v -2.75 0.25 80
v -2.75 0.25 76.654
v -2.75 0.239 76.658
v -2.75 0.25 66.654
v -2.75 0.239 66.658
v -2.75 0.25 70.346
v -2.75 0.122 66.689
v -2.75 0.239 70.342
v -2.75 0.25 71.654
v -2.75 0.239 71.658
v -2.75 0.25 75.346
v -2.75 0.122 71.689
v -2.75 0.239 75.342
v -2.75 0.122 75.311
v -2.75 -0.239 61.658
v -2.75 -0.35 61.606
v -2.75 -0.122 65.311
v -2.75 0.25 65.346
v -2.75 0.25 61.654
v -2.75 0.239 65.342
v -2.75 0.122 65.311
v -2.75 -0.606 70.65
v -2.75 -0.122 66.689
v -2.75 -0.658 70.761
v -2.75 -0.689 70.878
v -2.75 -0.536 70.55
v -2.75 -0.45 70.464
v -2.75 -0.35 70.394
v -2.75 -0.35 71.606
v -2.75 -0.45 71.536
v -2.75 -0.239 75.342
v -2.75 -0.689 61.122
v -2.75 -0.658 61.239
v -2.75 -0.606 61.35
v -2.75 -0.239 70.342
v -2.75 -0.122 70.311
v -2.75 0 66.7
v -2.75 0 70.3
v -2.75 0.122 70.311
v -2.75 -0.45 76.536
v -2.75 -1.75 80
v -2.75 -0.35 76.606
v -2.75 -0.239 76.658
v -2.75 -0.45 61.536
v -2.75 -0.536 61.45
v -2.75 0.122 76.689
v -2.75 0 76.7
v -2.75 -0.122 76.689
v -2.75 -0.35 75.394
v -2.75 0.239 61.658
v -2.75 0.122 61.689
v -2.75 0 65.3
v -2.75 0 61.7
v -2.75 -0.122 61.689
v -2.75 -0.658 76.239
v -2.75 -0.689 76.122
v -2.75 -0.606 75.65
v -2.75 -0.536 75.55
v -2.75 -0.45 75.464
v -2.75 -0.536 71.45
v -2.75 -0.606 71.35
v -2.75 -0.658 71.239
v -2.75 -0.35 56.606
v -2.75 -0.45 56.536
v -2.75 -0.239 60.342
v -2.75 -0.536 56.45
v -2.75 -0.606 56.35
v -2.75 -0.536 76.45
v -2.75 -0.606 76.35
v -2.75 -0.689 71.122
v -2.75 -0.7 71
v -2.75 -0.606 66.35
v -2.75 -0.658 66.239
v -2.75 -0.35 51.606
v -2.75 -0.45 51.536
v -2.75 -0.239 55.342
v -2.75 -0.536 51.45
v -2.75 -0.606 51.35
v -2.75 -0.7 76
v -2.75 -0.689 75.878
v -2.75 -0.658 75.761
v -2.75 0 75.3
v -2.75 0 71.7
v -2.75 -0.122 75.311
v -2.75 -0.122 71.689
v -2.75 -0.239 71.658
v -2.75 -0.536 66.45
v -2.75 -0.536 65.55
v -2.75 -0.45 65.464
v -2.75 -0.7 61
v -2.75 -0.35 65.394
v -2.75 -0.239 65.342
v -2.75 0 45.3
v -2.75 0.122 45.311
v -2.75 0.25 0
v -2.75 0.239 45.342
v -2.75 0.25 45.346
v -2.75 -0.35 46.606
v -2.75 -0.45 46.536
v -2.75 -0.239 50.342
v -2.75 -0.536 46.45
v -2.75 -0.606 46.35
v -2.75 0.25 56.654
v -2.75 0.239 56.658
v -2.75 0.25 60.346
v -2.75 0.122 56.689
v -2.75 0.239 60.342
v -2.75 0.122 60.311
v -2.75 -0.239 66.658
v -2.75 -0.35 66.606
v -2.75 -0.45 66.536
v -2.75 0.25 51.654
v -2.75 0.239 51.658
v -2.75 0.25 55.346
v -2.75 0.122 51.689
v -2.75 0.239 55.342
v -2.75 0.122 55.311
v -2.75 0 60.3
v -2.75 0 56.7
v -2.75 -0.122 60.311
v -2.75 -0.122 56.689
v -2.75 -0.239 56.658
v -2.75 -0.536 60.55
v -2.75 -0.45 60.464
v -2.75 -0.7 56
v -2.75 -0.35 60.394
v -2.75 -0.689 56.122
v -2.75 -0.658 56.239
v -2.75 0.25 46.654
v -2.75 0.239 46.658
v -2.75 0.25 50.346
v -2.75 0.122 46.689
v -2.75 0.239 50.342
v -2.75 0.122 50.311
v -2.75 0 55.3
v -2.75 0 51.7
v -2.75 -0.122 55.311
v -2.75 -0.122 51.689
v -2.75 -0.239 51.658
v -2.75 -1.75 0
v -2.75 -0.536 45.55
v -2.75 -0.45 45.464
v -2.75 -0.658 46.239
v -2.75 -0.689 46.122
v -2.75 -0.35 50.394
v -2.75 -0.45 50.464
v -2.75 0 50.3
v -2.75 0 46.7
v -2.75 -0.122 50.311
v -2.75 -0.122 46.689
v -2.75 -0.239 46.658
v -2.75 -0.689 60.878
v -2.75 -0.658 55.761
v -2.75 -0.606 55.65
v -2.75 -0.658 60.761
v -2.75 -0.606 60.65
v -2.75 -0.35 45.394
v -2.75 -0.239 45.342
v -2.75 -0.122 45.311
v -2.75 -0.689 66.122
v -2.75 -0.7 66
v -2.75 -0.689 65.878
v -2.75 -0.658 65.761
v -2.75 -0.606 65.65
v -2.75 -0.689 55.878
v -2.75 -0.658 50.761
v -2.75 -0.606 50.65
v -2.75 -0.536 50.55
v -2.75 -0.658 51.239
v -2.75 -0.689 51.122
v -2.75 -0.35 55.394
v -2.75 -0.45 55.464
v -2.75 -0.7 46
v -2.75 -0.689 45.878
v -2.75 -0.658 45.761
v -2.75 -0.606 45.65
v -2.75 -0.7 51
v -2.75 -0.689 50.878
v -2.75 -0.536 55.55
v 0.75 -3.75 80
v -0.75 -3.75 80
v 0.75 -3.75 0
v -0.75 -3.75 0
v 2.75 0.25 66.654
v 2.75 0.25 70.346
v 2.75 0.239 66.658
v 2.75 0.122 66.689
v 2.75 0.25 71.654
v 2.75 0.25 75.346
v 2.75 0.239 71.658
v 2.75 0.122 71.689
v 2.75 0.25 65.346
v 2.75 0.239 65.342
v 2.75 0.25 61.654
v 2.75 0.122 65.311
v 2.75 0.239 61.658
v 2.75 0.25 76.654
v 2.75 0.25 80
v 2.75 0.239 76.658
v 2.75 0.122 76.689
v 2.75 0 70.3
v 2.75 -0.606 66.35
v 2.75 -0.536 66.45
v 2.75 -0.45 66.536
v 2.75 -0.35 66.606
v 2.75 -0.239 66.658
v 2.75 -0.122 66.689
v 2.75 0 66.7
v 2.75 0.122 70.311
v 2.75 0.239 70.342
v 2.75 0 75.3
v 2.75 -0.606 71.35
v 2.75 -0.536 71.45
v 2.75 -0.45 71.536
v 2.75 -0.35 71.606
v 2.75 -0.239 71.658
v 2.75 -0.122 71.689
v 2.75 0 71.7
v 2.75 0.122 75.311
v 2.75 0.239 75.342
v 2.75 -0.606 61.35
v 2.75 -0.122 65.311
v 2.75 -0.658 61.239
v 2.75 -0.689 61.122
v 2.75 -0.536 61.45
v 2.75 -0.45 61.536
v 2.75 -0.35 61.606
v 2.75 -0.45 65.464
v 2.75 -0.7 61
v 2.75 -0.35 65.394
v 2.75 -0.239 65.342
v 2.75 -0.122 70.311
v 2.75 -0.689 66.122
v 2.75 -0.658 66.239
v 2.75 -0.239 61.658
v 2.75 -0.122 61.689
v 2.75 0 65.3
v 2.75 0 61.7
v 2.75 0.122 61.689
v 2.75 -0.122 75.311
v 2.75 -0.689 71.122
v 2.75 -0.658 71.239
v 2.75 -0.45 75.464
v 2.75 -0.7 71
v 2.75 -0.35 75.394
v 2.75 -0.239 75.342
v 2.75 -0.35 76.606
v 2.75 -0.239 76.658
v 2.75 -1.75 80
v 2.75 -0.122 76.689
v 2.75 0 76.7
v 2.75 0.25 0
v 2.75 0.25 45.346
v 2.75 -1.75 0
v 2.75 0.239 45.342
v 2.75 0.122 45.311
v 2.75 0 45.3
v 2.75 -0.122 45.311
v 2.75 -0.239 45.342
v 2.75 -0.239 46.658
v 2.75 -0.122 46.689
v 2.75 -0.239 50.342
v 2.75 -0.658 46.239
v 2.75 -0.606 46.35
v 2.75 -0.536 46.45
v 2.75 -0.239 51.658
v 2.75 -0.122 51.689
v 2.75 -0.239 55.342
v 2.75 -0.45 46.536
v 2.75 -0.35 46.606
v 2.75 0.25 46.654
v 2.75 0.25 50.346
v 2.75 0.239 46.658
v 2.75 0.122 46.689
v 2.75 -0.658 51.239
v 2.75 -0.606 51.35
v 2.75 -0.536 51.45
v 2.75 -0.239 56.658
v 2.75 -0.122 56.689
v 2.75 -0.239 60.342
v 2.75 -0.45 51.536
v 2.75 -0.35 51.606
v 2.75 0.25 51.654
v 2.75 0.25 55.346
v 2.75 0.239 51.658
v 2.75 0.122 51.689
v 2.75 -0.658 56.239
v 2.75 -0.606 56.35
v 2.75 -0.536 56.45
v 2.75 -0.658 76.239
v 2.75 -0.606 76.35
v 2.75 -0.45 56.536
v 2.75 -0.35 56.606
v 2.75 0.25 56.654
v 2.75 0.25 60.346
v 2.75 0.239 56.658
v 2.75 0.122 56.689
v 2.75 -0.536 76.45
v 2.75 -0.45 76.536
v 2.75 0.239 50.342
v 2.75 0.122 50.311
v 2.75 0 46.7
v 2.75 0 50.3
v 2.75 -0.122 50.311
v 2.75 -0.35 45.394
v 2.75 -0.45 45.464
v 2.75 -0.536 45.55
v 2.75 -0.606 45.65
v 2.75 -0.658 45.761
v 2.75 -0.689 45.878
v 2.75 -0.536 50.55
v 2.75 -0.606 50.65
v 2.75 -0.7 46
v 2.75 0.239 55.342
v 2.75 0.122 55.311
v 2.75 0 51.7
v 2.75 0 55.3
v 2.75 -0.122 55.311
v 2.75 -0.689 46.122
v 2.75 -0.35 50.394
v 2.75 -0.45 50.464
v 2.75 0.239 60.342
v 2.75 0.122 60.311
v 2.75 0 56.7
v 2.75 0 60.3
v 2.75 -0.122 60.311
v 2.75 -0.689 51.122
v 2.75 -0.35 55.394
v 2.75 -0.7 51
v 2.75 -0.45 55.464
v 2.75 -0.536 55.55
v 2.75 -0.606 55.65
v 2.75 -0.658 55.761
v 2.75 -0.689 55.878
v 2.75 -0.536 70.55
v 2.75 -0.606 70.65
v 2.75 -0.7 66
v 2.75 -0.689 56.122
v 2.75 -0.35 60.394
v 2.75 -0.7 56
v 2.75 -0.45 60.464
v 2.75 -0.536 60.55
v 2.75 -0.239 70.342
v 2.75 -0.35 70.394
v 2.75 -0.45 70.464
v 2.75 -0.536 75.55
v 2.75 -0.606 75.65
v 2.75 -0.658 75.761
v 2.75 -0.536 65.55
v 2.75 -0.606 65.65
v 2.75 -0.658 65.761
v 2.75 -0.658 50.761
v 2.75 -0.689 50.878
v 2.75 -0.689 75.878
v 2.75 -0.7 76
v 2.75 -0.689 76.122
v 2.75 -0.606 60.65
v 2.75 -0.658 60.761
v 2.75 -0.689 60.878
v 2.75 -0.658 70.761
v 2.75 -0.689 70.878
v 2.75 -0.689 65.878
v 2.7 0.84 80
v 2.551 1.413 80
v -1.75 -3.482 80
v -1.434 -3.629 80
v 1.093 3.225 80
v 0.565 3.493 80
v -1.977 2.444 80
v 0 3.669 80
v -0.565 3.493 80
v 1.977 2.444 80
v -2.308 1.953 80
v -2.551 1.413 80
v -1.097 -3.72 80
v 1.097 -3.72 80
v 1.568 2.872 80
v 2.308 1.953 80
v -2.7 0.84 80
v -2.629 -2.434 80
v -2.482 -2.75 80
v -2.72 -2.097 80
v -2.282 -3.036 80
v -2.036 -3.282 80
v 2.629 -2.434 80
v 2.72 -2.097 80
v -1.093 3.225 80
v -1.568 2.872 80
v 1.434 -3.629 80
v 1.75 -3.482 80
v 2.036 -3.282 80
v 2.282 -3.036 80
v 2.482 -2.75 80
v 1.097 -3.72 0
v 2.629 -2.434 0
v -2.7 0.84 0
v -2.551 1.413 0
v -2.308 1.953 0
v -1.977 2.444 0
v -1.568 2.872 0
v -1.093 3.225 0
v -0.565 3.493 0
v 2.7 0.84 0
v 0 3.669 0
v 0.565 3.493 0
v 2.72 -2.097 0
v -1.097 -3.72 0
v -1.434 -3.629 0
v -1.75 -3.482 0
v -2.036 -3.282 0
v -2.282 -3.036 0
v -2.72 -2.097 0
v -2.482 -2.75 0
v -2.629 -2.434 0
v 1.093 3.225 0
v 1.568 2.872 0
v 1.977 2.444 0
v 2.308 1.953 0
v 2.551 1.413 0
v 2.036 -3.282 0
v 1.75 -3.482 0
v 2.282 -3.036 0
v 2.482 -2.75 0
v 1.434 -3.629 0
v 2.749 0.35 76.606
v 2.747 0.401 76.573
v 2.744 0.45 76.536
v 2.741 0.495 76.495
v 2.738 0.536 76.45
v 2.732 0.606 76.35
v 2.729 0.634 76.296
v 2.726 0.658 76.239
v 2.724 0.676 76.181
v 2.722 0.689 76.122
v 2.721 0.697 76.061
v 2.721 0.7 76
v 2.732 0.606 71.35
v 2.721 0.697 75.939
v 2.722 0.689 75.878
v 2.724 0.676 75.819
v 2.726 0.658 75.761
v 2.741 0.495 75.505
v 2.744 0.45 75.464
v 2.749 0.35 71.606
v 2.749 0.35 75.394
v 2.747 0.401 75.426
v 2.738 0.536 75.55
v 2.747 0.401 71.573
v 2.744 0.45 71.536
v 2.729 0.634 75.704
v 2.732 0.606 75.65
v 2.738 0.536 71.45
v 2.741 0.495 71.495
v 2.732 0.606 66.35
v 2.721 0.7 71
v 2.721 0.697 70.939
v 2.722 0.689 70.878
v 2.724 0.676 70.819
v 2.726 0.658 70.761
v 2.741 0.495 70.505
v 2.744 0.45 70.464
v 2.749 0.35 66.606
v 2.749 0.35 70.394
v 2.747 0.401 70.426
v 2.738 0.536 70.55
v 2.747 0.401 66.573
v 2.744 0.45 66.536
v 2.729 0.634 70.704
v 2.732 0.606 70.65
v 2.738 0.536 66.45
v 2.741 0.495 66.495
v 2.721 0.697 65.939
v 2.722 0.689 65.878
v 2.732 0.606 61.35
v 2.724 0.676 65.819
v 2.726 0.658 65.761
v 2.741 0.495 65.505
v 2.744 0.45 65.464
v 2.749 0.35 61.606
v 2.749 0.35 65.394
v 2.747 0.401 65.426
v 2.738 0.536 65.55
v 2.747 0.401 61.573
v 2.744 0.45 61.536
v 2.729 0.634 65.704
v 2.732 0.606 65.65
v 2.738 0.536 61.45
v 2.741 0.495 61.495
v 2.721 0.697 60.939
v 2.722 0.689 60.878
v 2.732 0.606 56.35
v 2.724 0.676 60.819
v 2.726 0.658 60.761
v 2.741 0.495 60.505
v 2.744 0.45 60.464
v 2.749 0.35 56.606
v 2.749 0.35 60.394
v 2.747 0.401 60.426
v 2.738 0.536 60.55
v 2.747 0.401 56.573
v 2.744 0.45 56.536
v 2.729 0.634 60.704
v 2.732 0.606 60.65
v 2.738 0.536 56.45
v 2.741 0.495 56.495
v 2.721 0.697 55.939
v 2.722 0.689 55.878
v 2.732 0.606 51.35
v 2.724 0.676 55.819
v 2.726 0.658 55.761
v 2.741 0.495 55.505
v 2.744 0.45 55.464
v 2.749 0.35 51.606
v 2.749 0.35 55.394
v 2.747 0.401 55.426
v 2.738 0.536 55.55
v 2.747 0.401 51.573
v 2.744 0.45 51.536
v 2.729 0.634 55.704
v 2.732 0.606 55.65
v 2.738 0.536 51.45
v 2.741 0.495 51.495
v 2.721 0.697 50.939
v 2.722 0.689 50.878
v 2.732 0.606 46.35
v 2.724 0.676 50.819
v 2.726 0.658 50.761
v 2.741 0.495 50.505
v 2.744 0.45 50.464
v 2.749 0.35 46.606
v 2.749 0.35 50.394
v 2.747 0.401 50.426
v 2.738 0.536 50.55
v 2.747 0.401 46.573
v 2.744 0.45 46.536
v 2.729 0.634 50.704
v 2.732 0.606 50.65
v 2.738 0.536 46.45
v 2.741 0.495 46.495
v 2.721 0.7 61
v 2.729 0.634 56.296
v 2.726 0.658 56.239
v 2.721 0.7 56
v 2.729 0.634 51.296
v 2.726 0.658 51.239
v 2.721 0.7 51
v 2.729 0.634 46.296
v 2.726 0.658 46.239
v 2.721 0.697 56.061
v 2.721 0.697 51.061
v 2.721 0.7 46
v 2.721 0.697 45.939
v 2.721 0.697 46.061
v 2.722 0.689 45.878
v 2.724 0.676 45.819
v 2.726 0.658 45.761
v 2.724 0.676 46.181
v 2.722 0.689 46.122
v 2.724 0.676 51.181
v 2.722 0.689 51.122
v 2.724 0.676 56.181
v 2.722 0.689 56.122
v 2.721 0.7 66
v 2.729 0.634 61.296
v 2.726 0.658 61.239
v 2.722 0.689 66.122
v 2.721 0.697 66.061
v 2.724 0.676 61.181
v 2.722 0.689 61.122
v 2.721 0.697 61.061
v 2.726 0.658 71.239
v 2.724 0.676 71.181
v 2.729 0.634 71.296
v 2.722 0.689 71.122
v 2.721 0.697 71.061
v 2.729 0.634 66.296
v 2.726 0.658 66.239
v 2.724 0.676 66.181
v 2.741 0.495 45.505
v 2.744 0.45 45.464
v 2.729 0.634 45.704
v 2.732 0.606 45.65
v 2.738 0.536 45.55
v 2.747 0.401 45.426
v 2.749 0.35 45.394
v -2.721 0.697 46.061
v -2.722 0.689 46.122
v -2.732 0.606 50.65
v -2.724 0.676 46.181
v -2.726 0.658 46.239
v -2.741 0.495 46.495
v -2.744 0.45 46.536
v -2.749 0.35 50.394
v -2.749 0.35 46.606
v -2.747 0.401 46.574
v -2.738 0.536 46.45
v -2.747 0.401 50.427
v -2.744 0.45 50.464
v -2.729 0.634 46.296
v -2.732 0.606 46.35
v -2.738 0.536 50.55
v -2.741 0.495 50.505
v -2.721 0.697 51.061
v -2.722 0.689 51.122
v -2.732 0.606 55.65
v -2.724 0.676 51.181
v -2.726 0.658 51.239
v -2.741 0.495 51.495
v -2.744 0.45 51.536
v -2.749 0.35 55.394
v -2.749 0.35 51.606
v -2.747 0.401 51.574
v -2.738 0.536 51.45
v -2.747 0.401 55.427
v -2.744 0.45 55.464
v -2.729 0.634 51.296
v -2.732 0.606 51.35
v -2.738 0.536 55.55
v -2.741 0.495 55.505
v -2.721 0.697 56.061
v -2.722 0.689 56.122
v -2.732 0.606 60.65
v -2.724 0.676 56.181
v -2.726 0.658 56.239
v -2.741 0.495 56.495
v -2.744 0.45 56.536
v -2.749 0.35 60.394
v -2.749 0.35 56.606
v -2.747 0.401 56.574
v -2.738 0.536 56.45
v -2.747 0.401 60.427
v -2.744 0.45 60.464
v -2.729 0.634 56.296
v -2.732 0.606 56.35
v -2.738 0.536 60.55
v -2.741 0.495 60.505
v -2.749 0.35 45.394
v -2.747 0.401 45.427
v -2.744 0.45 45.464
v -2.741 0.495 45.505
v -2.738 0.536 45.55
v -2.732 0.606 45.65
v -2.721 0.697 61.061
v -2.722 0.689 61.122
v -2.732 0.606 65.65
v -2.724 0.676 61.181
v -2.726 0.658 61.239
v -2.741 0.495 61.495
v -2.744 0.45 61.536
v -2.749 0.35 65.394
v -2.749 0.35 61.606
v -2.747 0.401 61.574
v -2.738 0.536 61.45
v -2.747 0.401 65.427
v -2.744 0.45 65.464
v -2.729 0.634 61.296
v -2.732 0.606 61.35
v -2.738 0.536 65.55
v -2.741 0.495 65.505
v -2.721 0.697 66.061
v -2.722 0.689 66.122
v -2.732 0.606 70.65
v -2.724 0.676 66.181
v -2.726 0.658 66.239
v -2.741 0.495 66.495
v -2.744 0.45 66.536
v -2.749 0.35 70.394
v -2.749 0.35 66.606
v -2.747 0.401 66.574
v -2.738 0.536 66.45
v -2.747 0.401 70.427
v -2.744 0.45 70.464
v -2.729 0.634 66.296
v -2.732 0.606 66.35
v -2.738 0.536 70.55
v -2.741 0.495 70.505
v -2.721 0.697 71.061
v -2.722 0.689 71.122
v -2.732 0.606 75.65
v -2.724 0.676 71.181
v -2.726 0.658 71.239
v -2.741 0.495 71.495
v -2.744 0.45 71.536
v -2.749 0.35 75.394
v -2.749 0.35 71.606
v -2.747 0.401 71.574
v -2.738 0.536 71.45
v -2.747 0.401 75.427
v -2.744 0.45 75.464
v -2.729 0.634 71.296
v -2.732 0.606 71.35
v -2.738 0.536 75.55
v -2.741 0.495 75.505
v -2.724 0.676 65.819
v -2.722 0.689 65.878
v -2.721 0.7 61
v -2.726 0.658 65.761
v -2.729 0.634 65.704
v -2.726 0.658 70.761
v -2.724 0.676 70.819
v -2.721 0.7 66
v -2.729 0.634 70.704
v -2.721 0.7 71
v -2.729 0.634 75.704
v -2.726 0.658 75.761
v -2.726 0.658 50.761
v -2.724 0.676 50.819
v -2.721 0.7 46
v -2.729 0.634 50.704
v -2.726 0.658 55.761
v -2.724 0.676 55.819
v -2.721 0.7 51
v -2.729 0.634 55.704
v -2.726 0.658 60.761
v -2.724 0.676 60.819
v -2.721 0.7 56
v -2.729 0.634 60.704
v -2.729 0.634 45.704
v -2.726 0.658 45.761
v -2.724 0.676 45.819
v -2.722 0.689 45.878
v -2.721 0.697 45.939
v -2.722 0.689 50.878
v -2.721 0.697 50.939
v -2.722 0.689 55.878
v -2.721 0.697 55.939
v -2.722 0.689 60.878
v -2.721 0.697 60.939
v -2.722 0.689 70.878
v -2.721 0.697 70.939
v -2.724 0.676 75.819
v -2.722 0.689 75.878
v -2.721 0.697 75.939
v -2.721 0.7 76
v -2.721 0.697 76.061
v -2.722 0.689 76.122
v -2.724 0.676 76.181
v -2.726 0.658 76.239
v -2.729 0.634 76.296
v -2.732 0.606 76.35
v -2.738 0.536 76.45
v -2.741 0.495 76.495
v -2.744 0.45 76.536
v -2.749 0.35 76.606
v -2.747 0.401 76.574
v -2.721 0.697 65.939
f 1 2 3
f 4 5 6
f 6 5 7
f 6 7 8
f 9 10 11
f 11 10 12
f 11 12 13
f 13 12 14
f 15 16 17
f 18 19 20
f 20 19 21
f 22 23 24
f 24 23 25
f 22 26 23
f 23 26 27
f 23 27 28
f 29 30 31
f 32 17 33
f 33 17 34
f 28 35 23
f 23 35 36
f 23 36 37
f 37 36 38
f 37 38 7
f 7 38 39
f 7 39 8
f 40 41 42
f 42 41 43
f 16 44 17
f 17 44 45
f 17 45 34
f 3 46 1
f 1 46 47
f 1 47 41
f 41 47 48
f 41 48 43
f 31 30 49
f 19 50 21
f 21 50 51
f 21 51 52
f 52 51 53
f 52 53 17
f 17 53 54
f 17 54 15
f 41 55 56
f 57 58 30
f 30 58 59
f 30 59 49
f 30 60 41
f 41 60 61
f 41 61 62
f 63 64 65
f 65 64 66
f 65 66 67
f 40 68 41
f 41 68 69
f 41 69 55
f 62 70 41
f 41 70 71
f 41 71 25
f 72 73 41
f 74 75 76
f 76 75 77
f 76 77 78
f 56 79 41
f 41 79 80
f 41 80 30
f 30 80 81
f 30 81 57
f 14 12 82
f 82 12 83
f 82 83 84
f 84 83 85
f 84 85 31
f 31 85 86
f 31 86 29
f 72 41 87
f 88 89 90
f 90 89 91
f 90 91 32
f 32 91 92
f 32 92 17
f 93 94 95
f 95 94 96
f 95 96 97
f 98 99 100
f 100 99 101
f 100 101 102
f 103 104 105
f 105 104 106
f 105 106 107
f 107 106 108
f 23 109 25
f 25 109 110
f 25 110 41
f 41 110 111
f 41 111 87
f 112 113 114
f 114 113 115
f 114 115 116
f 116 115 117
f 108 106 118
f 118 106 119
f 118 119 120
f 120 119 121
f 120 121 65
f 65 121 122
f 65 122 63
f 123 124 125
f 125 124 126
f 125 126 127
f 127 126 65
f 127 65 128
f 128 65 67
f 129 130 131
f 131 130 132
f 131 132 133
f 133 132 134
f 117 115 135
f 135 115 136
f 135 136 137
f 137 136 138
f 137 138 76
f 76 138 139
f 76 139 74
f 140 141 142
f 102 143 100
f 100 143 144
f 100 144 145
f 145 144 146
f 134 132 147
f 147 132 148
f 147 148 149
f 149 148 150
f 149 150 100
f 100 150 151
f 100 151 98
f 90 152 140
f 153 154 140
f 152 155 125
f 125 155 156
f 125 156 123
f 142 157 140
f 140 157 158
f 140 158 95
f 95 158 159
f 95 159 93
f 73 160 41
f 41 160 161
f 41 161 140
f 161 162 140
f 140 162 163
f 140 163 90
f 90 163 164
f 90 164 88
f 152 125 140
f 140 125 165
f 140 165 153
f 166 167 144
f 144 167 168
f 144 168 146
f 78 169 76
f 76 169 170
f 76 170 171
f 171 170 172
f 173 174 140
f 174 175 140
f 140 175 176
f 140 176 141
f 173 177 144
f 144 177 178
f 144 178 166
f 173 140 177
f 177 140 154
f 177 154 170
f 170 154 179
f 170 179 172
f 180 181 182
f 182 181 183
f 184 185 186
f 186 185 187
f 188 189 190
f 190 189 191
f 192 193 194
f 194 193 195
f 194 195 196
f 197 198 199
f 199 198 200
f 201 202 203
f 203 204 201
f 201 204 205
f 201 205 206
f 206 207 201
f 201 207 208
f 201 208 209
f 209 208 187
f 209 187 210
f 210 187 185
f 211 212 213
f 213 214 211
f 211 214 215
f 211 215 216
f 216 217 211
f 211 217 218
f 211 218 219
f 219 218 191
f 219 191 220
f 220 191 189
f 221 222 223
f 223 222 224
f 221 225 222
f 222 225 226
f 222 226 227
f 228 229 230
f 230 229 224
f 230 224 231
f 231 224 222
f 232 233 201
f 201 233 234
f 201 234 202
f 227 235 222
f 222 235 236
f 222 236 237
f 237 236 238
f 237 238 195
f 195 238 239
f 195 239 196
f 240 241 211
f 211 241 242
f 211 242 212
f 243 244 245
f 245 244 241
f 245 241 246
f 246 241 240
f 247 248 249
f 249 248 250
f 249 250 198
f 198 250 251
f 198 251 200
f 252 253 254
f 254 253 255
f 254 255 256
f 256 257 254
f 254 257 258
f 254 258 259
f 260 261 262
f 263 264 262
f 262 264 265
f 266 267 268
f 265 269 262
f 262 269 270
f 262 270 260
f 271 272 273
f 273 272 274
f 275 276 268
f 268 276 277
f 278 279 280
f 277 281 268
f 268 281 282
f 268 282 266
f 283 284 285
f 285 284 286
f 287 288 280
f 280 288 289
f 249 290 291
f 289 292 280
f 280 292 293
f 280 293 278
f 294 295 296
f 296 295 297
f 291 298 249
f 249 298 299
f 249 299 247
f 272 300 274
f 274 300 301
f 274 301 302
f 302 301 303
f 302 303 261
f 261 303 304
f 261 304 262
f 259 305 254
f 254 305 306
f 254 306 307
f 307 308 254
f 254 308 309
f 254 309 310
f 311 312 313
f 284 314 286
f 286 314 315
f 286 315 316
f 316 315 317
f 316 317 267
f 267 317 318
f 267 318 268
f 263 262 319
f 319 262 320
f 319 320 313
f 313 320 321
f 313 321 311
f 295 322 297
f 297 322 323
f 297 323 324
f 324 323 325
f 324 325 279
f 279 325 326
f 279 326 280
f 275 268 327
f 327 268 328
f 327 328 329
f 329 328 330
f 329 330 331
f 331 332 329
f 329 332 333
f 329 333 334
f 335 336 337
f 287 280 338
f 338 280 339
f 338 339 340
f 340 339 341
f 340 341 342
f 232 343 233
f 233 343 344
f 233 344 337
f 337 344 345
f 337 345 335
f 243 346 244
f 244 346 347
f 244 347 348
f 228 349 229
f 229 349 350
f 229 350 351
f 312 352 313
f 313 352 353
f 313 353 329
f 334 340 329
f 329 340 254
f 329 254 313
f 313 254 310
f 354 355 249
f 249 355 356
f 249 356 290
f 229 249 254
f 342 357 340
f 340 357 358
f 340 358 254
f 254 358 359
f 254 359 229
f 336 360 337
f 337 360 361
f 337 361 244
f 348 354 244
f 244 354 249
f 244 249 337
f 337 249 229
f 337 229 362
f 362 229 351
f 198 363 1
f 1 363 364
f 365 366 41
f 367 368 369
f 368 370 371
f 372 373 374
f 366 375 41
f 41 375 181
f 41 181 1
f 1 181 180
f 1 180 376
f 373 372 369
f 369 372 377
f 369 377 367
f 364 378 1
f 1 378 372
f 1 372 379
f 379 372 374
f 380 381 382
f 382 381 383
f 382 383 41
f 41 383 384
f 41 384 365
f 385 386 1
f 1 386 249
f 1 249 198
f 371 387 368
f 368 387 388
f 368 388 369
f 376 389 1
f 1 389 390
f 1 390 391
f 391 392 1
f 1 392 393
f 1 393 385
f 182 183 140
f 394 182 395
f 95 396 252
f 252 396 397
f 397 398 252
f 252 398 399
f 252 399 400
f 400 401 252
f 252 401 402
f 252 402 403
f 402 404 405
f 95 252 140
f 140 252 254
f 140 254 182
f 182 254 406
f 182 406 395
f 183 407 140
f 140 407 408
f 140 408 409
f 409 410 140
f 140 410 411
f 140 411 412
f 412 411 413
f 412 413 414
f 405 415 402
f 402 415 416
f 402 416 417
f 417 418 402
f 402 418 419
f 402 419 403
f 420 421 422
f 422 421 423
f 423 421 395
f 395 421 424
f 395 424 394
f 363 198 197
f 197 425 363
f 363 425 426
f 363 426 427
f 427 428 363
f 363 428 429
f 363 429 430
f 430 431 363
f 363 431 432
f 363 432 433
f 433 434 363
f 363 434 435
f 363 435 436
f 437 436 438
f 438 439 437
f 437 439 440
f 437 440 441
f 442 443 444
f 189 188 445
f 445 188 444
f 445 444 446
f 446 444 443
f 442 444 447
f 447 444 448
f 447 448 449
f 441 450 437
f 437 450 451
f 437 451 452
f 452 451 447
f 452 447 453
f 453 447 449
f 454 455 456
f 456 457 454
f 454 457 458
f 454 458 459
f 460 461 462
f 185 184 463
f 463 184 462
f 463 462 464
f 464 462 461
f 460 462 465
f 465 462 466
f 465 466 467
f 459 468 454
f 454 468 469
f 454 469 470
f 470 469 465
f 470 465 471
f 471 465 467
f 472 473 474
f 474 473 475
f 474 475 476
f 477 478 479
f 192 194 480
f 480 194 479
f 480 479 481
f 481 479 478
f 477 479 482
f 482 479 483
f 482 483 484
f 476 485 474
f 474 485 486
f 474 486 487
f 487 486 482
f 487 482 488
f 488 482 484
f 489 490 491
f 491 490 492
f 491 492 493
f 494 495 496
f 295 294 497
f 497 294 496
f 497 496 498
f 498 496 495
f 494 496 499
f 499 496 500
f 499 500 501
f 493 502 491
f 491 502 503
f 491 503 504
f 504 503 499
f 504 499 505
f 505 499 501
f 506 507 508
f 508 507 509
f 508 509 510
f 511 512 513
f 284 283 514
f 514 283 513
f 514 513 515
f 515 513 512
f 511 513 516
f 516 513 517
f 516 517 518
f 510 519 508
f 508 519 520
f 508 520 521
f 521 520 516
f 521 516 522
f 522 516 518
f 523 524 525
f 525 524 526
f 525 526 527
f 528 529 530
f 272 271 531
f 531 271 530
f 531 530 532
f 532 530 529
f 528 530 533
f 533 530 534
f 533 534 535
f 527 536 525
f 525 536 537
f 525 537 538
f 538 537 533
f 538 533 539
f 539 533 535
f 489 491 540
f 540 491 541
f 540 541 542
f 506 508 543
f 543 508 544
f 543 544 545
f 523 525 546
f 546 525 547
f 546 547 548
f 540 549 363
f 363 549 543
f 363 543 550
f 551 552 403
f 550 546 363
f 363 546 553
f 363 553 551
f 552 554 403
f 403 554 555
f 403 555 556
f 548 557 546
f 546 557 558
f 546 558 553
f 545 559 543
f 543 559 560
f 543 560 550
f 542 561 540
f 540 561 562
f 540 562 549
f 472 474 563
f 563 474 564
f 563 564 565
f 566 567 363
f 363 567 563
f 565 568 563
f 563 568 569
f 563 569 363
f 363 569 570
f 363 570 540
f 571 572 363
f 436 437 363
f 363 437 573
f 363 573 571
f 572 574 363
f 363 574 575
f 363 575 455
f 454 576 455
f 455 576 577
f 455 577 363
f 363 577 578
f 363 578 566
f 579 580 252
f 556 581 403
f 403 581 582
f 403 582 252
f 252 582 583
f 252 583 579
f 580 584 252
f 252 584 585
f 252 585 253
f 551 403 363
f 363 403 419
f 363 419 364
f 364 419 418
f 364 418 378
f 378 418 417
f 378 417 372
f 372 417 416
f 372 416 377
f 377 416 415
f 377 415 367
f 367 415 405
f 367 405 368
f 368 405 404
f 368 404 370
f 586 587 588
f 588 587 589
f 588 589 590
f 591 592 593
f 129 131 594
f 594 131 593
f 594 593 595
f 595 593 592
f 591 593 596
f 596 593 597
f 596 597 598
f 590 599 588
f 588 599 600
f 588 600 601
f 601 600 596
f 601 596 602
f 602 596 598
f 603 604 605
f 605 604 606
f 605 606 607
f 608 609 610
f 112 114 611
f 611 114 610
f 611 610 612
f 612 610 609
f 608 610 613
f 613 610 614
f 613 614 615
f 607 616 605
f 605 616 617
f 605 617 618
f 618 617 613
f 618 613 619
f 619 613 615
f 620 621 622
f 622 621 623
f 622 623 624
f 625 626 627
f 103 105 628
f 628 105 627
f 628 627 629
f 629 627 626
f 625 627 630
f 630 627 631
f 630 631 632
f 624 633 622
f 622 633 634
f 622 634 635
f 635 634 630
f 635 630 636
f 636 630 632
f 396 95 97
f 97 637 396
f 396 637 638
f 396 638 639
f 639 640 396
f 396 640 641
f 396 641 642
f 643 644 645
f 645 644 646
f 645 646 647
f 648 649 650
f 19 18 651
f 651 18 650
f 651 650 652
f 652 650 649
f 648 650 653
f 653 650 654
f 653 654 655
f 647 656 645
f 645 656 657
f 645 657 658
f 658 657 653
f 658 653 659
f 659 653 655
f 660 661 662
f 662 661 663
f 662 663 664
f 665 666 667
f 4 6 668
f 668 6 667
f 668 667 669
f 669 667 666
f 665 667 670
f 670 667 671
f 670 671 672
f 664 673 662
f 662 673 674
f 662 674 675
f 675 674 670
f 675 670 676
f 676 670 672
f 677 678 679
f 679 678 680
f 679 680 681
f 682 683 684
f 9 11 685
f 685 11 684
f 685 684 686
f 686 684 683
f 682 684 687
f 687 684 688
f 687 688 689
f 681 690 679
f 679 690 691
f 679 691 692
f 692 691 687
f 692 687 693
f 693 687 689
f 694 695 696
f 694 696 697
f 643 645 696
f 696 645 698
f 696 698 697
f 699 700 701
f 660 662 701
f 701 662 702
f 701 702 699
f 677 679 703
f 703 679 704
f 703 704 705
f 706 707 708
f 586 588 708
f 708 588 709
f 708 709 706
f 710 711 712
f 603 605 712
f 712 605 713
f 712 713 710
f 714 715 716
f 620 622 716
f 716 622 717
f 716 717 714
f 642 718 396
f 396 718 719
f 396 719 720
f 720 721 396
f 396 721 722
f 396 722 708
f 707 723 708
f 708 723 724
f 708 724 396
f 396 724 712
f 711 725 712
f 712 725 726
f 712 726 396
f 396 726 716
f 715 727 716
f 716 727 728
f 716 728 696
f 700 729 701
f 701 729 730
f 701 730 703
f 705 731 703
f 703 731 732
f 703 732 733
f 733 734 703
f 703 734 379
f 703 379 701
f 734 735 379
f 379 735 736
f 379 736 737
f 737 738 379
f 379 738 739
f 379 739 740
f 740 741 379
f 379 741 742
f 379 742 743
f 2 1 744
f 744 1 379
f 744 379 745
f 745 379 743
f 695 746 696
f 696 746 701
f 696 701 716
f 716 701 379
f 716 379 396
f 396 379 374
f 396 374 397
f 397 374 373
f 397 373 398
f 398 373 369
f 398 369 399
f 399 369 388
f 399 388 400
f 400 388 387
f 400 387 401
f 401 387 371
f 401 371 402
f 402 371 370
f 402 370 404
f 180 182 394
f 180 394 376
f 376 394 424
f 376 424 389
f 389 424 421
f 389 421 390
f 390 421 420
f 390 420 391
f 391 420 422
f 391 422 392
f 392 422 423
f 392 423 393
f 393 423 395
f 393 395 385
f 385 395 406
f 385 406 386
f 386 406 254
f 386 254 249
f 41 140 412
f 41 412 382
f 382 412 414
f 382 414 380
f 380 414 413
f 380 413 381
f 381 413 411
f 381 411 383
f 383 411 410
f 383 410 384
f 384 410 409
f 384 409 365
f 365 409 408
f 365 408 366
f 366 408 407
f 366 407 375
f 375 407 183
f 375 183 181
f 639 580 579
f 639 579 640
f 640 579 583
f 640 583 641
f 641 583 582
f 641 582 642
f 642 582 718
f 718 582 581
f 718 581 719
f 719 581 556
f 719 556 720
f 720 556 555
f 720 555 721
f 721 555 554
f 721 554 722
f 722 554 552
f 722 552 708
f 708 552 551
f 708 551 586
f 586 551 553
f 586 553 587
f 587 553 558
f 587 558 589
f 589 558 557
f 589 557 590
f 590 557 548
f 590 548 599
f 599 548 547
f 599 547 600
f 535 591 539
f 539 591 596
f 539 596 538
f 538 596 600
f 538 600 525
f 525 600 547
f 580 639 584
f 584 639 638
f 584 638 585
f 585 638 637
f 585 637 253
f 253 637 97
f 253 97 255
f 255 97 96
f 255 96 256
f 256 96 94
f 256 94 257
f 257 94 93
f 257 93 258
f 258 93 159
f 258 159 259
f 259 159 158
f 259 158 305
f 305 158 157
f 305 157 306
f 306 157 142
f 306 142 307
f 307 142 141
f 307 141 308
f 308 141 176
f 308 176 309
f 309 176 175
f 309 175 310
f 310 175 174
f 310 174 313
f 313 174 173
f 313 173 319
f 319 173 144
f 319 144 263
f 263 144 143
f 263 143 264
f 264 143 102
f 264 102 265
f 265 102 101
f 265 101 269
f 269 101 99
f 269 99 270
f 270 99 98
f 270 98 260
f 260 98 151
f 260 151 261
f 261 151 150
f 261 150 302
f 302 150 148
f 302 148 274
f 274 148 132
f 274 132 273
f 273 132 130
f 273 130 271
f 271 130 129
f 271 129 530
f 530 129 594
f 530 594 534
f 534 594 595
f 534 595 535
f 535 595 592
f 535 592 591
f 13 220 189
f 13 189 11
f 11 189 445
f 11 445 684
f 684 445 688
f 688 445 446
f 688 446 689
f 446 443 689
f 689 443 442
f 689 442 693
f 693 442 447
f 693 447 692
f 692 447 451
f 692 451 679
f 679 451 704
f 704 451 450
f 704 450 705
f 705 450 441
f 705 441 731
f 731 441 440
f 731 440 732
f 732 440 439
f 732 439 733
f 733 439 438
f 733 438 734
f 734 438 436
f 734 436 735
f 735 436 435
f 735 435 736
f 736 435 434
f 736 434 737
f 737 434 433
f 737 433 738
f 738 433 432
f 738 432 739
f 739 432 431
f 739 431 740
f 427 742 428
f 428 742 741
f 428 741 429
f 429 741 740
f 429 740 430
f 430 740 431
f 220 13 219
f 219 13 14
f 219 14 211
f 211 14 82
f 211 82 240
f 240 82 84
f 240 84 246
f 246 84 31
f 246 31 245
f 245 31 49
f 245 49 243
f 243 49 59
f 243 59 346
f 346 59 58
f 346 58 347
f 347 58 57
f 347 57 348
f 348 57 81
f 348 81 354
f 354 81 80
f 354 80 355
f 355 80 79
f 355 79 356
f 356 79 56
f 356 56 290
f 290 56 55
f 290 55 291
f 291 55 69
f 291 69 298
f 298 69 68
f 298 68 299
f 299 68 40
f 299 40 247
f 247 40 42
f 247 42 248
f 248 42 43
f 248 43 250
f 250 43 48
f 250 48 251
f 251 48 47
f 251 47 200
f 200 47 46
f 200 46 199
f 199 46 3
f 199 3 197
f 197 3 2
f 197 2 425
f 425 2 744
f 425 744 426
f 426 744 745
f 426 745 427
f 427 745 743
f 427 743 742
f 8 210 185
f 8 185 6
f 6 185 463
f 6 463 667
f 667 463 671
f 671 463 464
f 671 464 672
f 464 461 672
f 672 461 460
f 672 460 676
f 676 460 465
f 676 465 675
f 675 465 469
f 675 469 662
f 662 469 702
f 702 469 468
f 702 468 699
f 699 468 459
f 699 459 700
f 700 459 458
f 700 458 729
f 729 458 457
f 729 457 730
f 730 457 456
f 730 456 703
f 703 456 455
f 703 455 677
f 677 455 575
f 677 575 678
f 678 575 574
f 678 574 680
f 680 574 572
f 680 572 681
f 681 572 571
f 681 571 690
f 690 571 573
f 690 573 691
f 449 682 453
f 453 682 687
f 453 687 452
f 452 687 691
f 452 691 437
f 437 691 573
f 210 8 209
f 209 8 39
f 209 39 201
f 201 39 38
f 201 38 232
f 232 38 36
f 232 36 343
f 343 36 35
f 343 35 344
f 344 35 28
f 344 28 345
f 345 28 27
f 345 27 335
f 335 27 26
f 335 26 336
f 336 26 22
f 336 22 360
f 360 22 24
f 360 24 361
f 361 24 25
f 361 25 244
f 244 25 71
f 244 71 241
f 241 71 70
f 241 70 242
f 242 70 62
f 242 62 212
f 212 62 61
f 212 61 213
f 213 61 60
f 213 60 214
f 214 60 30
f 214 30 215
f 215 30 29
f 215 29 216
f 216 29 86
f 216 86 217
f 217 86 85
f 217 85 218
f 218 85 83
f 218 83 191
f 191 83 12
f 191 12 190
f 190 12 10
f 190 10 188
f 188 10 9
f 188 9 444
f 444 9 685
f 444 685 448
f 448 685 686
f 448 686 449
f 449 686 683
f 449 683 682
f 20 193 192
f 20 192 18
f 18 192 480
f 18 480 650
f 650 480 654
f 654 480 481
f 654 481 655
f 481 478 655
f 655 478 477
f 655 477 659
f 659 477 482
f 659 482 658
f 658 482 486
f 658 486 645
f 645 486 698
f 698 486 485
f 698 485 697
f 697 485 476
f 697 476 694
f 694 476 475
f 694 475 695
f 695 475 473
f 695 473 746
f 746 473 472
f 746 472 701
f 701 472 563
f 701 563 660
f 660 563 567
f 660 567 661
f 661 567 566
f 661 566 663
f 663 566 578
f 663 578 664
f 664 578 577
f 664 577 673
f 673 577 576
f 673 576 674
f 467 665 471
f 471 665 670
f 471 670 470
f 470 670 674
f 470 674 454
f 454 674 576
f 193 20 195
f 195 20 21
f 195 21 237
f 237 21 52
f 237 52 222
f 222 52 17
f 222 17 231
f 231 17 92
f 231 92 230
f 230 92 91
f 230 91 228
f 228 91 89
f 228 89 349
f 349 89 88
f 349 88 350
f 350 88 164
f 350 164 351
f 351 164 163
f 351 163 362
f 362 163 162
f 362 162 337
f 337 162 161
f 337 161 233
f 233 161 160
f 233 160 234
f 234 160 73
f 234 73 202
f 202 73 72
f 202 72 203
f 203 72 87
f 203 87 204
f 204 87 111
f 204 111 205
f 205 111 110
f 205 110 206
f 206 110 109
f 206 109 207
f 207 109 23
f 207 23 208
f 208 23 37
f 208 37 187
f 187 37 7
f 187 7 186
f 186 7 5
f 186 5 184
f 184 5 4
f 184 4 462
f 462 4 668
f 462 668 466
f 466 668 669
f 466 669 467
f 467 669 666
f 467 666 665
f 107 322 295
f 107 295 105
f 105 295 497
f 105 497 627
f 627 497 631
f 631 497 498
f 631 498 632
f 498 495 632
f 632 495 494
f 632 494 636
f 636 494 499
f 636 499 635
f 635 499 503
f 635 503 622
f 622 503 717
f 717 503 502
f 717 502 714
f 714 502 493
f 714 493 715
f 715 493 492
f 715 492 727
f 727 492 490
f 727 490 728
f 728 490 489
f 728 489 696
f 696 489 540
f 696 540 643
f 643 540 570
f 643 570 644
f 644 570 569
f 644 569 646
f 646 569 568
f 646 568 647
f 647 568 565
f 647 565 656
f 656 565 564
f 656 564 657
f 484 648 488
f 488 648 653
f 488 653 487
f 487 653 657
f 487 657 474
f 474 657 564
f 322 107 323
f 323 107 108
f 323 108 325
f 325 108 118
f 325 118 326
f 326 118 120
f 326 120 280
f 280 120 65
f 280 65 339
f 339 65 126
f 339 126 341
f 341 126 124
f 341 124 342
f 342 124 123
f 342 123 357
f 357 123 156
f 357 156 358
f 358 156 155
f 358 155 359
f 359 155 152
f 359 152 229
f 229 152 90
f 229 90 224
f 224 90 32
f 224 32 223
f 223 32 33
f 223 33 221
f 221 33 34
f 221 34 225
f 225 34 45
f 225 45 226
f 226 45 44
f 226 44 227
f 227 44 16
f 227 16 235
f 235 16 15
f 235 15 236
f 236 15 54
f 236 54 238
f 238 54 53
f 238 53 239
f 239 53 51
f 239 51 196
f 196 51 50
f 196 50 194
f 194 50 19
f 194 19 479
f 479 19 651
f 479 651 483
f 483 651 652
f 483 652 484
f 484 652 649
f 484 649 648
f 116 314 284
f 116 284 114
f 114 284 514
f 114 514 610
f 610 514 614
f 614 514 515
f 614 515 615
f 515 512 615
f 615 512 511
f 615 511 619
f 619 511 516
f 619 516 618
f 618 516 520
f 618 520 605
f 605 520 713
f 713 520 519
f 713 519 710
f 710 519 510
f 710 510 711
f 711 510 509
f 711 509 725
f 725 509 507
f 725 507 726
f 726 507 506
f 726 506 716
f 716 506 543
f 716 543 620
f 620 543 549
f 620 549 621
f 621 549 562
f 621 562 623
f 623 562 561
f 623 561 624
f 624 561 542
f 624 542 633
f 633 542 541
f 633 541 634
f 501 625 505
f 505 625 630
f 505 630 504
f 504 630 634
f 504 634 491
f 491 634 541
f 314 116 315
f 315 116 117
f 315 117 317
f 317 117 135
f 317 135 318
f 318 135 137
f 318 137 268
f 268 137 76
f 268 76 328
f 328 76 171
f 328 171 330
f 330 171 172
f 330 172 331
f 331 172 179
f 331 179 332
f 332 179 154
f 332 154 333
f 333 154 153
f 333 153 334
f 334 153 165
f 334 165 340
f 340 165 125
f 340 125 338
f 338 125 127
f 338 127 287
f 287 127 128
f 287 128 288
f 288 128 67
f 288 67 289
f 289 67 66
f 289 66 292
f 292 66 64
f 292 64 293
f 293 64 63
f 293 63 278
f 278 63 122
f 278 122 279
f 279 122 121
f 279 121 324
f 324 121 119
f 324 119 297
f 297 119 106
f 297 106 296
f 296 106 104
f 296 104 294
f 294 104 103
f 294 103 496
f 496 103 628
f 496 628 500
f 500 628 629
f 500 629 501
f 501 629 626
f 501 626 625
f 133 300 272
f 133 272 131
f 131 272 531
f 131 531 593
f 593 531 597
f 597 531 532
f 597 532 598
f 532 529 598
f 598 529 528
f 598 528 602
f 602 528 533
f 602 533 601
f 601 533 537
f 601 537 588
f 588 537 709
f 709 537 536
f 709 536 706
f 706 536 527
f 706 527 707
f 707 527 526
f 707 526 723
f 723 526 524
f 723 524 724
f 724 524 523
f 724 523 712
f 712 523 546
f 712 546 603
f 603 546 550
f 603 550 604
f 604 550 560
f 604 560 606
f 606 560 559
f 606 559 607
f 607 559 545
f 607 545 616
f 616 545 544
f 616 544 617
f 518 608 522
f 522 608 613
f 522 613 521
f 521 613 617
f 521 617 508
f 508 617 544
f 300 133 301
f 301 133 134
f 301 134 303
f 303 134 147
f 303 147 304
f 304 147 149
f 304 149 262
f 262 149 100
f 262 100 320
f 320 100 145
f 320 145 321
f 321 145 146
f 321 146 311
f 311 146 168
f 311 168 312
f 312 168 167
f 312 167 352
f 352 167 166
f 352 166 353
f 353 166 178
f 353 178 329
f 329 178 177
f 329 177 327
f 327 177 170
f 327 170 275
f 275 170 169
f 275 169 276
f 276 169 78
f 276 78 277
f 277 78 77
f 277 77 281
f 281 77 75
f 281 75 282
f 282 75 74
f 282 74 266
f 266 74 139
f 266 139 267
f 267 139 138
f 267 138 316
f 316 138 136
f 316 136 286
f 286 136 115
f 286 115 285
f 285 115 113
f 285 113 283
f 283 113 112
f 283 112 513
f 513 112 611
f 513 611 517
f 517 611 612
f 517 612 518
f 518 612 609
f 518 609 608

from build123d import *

# Parameters (mm, degrees)
ESQUISSE1_W             = 5.5
ESQUISSE1_H             = 7.5
BOSS_EXTRU_1_DEPTH      = 80
CONG_1_R                = 3.5
CONG_2_R                = 2
ESQUISSE2_R             = 0.7
ENL_V_MAT_EXTRU_1_DEPTH = 81.276475384


with BuildPart() as part:
    # Esquisse1 → Boss.-Extru.1 (new body)
    with BuildSketch(Plane.XY):
        Rectangle(ESQUISSE1_W, ESQUISSE1_H)
    extrude(amount=BOSS_EXTRU_1_DEPTH)

    # Congé1
    # the kernel refuses this fillet: 3.5 mm, written as the material it takes off along each edge
    with BuildSketch(Plane(origin=(-2.75, 3.75, -8.75), x_dir=(1, 0, 0), z_dir=(0, 0, 1))) as cong_1_piece_1:
        with BuildLine():
            CenterArc((CONG_1_R, -CONG_1_R), CONG_1_R, 90, 90)
            Line((0, -CONG_1_R), (0, 0))
            Line((0, 0), (CONG_1_R, 0))
        make_face()
    extrude(amount=97.5, mode=Mode.SUBTRACT)
    with BuildSketch(Plane(origin=(2.75, 3.75, -8.75), x_dir=(-1, 0, 0), z_dir=(0, 0, 1))) as cong_1_piece_2:
        with BuildLine():
            CenterArc((CONG_1_R, CONG_1_R), CONG_1_R, 180, 90)
            Line((0, CONG_1_R), (0, 0))
            Line((0, 0), (CONG_1_R, 0))
        make_face()
    extrude(amount=97.5, mode=Mode.SUBTRACT)

    # Congé2
    cong_2_edges = [part.edges().sort_by_distance(p)[0] for p in [
        (2.75, -3.75, 40),
        (-2.75, -3.75, 40),
    ]]
    fillet(cong_2_edges, radius=CONG_2_R)

    # Esquisse2 → Enlèv. mat.-Extru.1 (cut, through all)
    with BuildSketch(Plane.ZY.offset(2.75)):
        with Locations(Location((46, 0, 0), (0, 0, 159.075167572))):
            Circle(ESQUISSE2_R)
        with Locations(Location((51, 0, 0), (0, 0, 159.075167572))):
            Circle(ESQUISSE2_R)
        with Locations(Location((56, 0, 0), (0, 0, 159.075167572))):
            Circle(ESQUISSE2_R)
        with Locations(Location((61, 0, 0), (0, 0, 159.075167572))):
            Circle(ESQUISSE2_R)
        with Locations(Location((66, 0, 0), (0, 0, 159.075167572))):
            Circle(ESQUISSE2_R)
        with Locations(Location((71, 0, 0), (0, 0, 159.075167572))):
            Circle(ESQUISSE2_R)
        with Locations(Location((76, 0, 0), (0, 0, 159.075167572))):
            Circle(ESQUISSE2_R)
    extrude(amount=-ENL_V_MAT_EXTRU_1_DEPTH, mode=Mode.SUBTRACT)


solid = part.part
